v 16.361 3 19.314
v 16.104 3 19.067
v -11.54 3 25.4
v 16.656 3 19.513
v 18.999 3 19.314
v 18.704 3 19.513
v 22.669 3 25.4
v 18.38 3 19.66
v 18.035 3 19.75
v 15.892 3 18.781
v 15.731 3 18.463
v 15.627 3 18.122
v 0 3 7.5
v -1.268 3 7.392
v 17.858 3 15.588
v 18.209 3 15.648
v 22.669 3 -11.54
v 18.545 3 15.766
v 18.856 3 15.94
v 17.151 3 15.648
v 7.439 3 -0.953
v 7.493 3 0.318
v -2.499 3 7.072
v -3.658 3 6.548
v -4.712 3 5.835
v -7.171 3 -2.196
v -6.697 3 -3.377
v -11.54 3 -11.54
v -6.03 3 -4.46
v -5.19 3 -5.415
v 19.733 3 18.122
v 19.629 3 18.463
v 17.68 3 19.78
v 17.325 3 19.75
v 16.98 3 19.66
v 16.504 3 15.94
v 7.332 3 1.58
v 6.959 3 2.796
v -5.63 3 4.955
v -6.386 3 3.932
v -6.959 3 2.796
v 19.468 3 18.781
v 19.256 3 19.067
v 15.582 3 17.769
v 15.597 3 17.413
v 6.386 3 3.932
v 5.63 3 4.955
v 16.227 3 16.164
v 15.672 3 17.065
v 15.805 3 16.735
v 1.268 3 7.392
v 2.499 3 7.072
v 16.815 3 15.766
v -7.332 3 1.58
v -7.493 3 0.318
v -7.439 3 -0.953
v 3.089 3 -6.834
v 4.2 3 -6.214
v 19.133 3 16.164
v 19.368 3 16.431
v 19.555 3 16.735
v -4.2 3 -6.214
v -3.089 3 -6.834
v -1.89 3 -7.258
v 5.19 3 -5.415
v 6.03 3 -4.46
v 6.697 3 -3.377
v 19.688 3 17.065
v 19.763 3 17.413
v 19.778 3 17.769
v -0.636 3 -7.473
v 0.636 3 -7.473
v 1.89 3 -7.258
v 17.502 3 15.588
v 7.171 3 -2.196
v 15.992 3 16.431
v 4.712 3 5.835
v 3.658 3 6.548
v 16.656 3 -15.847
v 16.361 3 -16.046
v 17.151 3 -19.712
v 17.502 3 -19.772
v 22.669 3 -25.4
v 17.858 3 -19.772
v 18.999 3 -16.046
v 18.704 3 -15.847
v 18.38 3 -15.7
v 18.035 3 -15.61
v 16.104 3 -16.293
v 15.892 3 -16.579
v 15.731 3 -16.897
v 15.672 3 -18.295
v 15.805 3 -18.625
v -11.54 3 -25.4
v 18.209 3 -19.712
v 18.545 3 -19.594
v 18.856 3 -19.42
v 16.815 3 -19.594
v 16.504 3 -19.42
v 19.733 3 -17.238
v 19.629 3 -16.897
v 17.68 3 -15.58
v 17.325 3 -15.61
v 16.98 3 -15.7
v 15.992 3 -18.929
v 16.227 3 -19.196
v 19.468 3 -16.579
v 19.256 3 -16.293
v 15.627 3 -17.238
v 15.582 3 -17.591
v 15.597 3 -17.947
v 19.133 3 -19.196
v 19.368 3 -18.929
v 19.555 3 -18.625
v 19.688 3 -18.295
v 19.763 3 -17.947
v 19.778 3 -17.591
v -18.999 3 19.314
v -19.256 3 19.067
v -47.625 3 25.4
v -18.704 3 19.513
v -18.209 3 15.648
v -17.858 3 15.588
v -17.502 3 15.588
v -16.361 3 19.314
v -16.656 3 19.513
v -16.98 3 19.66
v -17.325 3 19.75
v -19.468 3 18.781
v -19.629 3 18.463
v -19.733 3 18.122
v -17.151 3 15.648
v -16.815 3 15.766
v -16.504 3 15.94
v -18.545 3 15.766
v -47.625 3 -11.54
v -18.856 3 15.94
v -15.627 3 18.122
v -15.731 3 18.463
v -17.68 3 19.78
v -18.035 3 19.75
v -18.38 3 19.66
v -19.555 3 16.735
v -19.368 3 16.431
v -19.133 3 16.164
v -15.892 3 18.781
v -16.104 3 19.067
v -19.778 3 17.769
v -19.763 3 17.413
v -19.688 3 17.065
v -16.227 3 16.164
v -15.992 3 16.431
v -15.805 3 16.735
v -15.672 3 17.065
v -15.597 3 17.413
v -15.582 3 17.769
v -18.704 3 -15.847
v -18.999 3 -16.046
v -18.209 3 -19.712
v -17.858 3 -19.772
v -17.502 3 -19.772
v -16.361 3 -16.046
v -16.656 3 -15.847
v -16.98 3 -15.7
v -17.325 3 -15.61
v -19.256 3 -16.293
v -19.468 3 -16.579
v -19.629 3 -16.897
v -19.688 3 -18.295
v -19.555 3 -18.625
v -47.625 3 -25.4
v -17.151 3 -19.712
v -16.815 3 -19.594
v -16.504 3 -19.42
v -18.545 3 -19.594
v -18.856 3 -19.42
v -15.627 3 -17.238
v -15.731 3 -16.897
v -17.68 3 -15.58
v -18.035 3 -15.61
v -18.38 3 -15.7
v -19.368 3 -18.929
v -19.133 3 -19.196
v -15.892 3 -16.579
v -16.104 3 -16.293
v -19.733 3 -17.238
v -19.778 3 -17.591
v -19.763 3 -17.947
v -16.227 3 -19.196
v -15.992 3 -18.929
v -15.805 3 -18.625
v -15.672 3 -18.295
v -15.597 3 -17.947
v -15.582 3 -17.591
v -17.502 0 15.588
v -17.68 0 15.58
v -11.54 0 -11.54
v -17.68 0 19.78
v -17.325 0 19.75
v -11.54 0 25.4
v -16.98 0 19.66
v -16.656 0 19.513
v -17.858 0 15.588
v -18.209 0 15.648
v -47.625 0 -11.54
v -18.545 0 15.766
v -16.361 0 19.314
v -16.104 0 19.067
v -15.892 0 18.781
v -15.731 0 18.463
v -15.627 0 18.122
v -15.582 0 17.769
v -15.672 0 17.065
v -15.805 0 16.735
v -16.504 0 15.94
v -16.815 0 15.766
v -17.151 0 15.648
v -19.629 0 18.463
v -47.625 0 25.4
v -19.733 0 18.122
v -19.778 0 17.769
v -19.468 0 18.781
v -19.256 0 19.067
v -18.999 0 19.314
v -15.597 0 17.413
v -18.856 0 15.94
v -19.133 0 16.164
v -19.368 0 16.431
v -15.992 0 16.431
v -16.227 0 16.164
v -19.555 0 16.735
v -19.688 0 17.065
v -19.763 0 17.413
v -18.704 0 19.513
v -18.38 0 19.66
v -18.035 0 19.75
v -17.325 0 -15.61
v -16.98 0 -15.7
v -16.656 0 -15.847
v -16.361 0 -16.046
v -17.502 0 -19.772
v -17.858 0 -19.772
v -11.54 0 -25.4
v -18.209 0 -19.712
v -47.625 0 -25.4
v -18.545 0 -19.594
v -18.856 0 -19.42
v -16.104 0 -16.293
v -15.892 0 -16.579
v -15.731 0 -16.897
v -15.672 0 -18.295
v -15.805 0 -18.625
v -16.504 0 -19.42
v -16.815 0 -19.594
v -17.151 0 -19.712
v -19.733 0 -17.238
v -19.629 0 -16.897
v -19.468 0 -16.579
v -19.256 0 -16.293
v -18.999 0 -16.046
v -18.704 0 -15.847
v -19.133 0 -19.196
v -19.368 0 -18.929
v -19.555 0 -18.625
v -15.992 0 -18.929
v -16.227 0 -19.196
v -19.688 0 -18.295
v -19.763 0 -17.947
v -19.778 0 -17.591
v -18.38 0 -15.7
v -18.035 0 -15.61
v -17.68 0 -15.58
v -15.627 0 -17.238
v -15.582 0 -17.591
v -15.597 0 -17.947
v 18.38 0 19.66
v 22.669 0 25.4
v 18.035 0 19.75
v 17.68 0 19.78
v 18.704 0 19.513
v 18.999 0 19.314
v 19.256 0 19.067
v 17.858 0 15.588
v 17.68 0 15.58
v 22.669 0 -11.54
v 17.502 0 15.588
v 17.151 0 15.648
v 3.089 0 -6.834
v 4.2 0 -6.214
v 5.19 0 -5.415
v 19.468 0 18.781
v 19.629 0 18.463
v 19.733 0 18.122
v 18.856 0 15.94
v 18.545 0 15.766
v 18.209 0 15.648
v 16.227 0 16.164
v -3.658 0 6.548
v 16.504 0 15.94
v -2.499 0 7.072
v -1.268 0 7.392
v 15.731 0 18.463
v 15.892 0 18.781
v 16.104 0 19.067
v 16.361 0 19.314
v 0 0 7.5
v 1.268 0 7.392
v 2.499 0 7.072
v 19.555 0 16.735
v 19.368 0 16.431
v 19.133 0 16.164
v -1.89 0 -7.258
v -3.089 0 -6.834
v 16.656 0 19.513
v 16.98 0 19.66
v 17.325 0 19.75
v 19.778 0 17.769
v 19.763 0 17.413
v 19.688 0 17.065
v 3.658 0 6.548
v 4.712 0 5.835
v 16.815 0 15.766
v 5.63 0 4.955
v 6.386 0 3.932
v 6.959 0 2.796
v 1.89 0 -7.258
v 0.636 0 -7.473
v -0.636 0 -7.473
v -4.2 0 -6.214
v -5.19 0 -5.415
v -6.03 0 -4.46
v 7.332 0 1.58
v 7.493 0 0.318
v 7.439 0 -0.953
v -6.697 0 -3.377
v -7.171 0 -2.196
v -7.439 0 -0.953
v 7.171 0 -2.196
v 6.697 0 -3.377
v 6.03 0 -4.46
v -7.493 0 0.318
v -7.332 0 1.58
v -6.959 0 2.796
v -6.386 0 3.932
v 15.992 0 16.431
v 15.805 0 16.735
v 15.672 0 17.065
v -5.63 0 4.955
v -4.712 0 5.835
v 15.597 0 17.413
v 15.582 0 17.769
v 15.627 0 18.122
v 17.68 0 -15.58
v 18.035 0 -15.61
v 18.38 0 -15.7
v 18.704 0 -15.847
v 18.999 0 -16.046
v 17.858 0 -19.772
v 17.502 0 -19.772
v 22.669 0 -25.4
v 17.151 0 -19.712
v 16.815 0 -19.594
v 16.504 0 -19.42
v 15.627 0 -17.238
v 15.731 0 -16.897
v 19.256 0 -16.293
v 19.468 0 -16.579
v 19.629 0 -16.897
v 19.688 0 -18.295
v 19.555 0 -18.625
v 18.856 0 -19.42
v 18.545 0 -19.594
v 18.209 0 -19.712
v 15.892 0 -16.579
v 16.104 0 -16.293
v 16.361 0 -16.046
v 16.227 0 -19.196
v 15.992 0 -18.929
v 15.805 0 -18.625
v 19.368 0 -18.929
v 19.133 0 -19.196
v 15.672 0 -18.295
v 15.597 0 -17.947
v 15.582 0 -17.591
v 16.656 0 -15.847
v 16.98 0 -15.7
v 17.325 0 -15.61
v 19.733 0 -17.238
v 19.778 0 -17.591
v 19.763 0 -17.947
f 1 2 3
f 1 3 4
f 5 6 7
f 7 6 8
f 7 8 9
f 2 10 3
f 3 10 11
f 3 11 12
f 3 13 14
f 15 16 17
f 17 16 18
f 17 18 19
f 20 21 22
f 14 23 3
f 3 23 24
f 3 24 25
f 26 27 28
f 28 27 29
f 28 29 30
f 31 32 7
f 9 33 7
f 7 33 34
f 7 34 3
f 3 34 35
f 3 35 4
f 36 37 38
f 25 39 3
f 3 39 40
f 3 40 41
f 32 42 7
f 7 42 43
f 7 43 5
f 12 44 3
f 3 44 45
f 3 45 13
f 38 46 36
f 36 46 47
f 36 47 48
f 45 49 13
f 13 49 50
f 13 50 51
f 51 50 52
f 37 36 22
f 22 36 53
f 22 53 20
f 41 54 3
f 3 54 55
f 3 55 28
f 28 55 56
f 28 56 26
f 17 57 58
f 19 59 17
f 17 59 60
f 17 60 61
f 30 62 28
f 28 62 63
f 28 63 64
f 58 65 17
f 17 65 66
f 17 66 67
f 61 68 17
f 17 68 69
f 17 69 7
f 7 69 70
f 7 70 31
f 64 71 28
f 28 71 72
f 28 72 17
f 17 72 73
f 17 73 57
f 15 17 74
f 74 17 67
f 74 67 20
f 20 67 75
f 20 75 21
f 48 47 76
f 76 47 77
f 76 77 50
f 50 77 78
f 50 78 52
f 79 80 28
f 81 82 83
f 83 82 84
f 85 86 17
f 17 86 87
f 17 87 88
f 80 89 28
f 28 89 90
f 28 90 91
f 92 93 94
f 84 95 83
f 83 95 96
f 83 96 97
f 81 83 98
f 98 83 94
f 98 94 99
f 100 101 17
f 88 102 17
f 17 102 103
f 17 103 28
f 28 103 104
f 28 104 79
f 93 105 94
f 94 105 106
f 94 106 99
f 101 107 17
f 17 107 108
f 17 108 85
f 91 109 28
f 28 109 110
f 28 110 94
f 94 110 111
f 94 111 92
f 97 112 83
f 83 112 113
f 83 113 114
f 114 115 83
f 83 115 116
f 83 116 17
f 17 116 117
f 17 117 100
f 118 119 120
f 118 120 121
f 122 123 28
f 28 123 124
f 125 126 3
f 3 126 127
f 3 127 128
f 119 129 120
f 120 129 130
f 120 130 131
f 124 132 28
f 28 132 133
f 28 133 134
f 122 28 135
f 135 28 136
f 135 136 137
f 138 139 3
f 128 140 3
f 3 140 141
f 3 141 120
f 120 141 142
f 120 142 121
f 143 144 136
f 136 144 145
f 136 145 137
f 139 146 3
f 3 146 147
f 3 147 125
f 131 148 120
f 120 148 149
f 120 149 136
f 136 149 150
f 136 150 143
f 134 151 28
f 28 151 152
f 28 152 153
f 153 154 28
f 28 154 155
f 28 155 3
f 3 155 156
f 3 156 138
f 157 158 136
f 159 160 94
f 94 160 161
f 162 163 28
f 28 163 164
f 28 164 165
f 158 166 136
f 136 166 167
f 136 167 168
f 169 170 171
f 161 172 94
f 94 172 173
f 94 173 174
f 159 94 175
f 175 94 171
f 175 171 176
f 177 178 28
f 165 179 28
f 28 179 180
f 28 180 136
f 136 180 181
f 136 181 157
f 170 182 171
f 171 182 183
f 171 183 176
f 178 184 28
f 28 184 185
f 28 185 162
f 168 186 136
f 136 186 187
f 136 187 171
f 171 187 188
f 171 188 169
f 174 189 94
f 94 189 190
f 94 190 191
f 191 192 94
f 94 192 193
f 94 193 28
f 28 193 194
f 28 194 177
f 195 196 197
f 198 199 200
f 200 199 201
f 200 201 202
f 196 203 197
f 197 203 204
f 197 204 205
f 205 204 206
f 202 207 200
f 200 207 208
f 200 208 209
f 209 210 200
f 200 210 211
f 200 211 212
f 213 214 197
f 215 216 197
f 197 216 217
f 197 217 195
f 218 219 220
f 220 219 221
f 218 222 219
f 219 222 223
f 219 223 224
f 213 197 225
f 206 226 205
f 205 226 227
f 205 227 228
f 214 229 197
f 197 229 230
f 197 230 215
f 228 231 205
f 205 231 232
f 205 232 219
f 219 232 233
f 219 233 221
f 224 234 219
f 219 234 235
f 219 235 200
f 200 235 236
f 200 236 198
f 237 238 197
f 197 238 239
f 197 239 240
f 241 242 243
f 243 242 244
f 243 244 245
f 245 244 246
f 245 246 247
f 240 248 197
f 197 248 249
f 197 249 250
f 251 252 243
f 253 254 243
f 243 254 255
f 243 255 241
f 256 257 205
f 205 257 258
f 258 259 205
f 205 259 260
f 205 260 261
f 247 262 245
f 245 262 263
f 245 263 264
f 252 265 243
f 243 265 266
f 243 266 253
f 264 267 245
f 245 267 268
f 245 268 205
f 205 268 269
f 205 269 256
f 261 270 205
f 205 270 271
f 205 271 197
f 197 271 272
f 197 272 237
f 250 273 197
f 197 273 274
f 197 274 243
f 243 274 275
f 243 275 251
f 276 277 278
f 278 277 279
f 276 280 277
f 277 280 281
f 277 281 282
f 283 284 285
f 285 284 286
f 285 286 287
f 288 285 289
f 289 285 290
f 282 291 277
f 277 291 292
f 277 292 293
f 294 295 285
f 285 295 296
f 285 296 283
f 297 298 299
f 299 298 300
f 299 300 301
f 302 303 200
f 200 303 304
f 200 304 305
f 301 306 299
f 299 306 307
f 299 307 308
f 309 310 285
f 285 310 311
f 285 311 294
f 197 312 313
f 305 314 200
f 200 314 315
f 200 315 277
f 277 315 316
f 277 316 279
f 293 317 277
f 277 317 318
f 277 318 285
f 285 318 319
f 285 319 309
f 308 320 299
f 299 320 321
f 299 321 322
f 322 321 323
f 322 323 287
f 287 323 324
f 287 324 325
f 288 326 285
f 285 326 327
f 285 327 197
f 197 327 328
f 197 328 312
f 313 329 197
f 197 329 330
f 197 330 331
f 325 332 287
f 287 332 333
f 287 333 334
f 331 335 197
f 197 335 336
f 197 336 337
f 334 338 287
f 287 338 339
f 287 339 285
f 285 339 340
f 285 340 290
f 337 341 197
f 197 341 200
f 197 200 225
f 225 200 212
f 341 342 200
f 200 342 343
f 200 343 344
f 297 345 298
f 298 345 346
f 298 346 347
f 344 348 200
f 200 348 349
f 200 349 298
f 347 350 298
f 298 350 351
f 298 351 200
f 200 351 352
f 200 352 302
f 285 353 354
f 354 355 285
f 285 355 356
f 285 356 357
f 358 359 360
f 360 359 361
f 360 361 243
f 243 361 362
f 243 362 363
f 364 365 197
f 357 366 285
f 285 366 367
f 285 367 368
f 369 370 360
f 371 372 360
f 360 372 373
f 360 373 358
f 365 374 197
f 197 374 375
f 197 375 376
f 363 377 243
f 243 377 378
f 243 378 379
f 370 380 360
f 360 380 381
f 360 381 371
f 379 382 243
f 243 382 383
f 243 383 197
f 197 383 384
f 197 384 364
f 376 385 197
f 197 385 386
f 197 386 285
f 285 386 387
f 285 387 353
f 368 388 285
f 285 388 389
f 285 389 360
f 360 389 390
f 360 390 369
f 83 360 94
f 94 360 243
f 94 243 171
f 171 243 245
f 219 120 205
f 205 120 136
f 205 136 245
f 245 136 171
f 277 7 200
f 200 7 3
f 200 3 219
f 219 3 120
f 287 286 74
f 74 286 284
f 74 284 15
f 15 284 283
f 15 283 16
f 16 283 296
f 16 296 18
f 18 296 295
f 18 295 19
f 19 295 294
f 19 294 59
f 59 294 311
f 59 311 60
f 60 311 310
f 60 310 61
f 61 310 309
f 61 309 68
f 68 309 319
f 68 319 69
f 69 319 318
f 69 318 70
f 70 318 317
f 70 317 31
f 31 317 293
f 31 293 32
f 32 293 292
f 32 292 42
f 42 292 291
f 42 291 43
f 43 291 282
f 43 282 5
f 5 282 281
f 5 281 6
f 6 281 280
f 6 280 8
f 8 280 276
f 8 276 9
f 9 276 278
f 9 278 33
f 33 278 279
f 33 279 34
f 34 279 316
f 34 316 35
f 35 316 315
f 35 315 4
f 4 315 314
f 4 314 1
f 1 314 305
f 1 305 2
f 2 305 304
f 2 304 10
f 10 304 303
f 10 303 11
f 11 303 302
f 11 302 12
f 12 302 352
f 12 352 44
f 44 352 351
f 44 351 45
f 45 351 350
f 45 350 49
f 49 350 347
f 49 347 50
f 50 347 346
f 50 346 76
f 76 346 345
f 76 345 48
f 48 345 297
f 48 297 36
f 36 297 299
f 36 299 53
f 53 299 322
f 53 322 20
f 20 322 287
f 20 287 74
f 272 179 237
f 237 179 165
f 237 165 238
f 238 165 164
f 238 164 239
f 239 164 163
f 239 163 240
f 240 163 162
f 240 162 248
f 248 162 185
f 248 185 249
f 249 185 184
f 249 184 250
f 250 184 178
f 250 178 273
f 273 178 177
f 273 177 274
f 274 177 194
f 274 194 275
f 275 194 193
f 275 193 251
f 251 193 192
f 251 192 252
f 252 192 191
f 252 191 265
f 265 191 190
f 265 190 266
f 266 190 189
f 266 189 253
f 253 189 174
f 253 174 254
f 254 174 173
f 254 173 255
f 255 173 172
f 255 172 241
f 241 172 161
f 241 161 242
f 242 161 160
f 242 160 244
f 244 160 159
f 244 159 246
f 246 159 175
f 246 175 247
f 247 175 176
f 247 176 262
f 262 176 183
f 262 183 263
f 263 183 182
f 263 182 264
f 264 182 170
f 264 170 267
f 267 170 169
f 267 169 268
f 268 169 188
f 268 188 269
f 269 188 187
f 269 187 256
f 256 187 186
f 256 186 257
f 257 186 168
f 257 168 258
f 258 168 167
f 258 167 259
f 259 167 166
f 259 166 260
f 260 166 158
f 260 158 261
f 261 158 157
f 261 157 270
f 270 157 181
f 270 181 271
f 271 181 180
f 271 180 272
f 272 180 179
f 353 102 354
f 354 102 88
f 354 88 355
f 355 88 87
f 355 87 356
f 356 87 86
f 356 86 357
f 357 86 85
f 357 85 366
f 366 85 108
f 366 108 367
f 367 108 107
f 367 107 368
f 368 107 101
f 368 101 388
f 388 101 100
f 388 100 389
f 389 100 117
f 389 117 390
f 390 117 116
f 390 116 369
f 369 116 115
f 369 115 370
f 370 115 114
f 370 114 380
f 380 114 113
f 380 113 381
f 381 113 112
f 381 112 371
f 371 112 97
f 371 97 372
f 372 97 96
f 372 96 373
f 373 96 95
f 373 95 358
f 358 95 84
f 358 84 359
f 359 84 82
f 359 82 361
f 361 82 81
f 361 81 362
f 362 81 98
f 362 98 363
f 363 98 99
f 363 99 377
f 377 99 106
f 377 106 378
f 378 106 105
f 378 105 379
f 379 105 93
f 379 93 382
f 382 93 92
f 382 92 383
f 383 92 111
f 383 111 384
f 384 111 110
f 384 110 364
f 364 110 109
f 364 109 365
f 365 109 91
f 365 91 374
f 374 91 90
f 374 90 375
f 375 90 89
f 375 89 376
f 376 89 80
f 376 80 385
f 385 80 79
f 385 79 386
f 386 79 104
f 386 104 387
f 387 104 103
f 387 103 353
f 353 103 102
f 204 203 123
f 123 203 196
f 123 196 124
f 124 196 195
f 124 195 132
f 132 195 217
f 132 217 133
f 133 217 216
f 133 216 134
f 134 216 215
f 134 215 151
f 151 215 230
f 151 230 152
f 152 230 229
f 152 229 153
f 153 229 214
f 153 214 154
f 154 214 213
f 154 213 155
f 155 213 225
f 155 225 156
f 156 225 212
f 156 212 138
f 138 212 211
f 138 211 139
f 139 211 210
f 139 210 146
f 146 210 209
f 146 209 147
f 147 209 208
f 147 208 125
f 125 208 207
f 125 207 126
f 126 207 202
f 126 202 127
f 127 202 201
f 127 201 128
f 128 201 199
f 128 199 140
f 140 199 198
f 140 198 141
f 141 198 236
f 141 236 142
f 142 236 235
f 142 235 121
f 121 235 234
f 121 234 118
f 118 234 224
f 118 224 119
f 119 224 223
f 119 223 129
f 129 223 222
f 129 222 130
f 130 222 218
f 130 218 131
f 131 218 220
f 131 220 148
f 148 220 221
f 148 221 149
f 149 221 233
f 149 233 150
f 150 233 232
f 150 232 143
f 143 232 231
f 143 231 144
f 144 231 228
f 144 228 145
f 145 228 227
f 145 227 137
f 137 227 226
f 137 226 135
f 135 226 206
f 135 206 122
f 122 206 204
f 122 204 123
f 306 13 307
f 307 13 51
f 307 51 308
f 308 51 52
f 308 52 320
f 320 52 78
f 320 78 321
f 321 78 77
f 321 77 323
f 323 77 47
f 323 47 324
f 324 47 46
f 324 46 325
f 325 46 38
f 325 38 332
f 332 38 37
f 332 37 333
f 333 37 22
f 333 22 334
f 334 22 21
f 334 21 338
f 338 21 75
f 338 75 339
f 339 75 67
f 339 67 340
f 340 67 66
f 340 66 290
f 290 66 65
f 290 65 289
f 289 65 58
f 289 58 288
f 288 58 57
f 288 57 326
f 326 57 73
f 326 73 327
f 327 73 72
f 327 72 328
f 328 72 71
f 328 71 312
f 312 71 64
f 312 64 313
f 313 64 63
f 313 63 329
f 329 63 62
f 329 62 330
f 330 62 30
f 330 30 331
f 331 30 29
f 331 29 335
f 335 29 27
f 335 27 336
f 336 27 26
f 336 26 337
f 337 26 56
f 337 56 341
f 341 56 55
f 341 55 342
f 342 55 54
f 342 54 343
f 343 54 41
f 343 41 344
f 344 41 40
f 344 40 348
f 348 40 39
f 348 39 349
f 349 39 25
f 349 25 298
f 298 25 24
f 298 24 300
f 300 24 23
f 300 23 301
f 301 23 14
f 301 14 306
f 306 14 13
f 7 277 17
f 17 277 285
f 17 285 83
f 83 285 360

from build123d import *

# Parameters (mm, degrees)
SKETCH1_W               = 95.25
SKETCH1_H               = 50.8
BOSS_EXTRUDE1_DEPTH     = 3
CUT_EXTRUDE1_DEPTH      = 55.058307641
CUT_EXTRUDE1_DEPTH_BACK = 55.058307641
SKETCH2_R               = 2.1
CUT_EXTRUDE3_DEPTH      = 55.058307641
CUT_EXTRUDE3_DEPTH_BACK = 55.058307641
SKETCH4_R               = 7.5
CUT_EXTRUDE4_DEPTH      = 55.058307641
CUT_EXTRUDE4_DEPTH_BACK = 55.058307641
SKETCH5_W               = 24.95556865
SKETCH5_H               = 50.8


with BuildPart() as part:
    # Sketch1 → Boss-Extrude1 (new body)
    with BuildSketch(Plane(origin=(0, 0, 0), x_dir=(1, 0, 0), z_dir=(0, 1, 0))):
        Rectangle(SKETCH1_W, SKETCH1_H)
    extrude(amount=BOSS_EXTRUDE1_DEPTH)

    # Sketch2 → Cut-Extrude1 (cut, two sides: drawn at the far end of the back side and taken through both)
    with BuildSketch(Plane(origin=(0, 3, 0), x_dir=(1, 0, 0), z_dir=(0, 1, 0)).offset(-CUT_EXTRUDE1_DEPTH_BACK)):
        with Locations(Location((-17.68, 17.68, 0), (0, 0, 270))):
            Circle(SKETCH2_R)
        with Locations(Location((17.68, 17.68, 0), (0, 0, 270))):
            Circle(SKETCH2_R)
        with Locations(Location((17.68, -17.68, 0), (0, 0, 270))):
            Circle(SKETCH2_R)
        with Locations(Location((-17.68, -17.68, 0), (0, 0, 270))):
            Circle(SKETCH2_R)
    extrude(amount=CUT_EXTRUDE1_DEPTH + CUT_EXTRUDE1_DEPTH_BACK, mode=Mode.SUBTRACT)

    # Sketch4 → Cut-Extrude3 (cut, two sides: drawn at the far end of the back side and taken through both)
    with BuildSketch(Plane(origin=(0, 3, 0), x_dir=(1, 0, 0), z_dir=(0, 1, 0)).offset(-CUT_EXTRUDE3_DEPTH_BACK)):
        with Locations(Location((0, 0, 0), (0, 0, 270))):
            Circle(SKETCH4_R)
    extrude(amount=CUT_EXTRUDE3_DEPTH + CUT_EXTRUDE3_DEPTH_BACK, mode=Mode.SUBTRACT)

    # Sketch5 → Cut-Extrude4 (cut, two sides: drawn at the far end of the back side and taken through both)
    with BuildSketch(Plane(origin=(0, 3, 0), x_dir=(1, 0, 0), z_dir=(0, 1, 0)).offset(-CUT_EXTRUDE4_DEPTH_BACK)):
        with Locations((35.147215675, 0)):
            Rectangle(SKETCH5_W, SKETCH5_H)
    extrude(amount=CUT_EXTRUDE4_DEPTH + CUT_EXTRUDE4_DEPTH_BACK, mode=Mode.SUBTRACT)


solid = part.part
